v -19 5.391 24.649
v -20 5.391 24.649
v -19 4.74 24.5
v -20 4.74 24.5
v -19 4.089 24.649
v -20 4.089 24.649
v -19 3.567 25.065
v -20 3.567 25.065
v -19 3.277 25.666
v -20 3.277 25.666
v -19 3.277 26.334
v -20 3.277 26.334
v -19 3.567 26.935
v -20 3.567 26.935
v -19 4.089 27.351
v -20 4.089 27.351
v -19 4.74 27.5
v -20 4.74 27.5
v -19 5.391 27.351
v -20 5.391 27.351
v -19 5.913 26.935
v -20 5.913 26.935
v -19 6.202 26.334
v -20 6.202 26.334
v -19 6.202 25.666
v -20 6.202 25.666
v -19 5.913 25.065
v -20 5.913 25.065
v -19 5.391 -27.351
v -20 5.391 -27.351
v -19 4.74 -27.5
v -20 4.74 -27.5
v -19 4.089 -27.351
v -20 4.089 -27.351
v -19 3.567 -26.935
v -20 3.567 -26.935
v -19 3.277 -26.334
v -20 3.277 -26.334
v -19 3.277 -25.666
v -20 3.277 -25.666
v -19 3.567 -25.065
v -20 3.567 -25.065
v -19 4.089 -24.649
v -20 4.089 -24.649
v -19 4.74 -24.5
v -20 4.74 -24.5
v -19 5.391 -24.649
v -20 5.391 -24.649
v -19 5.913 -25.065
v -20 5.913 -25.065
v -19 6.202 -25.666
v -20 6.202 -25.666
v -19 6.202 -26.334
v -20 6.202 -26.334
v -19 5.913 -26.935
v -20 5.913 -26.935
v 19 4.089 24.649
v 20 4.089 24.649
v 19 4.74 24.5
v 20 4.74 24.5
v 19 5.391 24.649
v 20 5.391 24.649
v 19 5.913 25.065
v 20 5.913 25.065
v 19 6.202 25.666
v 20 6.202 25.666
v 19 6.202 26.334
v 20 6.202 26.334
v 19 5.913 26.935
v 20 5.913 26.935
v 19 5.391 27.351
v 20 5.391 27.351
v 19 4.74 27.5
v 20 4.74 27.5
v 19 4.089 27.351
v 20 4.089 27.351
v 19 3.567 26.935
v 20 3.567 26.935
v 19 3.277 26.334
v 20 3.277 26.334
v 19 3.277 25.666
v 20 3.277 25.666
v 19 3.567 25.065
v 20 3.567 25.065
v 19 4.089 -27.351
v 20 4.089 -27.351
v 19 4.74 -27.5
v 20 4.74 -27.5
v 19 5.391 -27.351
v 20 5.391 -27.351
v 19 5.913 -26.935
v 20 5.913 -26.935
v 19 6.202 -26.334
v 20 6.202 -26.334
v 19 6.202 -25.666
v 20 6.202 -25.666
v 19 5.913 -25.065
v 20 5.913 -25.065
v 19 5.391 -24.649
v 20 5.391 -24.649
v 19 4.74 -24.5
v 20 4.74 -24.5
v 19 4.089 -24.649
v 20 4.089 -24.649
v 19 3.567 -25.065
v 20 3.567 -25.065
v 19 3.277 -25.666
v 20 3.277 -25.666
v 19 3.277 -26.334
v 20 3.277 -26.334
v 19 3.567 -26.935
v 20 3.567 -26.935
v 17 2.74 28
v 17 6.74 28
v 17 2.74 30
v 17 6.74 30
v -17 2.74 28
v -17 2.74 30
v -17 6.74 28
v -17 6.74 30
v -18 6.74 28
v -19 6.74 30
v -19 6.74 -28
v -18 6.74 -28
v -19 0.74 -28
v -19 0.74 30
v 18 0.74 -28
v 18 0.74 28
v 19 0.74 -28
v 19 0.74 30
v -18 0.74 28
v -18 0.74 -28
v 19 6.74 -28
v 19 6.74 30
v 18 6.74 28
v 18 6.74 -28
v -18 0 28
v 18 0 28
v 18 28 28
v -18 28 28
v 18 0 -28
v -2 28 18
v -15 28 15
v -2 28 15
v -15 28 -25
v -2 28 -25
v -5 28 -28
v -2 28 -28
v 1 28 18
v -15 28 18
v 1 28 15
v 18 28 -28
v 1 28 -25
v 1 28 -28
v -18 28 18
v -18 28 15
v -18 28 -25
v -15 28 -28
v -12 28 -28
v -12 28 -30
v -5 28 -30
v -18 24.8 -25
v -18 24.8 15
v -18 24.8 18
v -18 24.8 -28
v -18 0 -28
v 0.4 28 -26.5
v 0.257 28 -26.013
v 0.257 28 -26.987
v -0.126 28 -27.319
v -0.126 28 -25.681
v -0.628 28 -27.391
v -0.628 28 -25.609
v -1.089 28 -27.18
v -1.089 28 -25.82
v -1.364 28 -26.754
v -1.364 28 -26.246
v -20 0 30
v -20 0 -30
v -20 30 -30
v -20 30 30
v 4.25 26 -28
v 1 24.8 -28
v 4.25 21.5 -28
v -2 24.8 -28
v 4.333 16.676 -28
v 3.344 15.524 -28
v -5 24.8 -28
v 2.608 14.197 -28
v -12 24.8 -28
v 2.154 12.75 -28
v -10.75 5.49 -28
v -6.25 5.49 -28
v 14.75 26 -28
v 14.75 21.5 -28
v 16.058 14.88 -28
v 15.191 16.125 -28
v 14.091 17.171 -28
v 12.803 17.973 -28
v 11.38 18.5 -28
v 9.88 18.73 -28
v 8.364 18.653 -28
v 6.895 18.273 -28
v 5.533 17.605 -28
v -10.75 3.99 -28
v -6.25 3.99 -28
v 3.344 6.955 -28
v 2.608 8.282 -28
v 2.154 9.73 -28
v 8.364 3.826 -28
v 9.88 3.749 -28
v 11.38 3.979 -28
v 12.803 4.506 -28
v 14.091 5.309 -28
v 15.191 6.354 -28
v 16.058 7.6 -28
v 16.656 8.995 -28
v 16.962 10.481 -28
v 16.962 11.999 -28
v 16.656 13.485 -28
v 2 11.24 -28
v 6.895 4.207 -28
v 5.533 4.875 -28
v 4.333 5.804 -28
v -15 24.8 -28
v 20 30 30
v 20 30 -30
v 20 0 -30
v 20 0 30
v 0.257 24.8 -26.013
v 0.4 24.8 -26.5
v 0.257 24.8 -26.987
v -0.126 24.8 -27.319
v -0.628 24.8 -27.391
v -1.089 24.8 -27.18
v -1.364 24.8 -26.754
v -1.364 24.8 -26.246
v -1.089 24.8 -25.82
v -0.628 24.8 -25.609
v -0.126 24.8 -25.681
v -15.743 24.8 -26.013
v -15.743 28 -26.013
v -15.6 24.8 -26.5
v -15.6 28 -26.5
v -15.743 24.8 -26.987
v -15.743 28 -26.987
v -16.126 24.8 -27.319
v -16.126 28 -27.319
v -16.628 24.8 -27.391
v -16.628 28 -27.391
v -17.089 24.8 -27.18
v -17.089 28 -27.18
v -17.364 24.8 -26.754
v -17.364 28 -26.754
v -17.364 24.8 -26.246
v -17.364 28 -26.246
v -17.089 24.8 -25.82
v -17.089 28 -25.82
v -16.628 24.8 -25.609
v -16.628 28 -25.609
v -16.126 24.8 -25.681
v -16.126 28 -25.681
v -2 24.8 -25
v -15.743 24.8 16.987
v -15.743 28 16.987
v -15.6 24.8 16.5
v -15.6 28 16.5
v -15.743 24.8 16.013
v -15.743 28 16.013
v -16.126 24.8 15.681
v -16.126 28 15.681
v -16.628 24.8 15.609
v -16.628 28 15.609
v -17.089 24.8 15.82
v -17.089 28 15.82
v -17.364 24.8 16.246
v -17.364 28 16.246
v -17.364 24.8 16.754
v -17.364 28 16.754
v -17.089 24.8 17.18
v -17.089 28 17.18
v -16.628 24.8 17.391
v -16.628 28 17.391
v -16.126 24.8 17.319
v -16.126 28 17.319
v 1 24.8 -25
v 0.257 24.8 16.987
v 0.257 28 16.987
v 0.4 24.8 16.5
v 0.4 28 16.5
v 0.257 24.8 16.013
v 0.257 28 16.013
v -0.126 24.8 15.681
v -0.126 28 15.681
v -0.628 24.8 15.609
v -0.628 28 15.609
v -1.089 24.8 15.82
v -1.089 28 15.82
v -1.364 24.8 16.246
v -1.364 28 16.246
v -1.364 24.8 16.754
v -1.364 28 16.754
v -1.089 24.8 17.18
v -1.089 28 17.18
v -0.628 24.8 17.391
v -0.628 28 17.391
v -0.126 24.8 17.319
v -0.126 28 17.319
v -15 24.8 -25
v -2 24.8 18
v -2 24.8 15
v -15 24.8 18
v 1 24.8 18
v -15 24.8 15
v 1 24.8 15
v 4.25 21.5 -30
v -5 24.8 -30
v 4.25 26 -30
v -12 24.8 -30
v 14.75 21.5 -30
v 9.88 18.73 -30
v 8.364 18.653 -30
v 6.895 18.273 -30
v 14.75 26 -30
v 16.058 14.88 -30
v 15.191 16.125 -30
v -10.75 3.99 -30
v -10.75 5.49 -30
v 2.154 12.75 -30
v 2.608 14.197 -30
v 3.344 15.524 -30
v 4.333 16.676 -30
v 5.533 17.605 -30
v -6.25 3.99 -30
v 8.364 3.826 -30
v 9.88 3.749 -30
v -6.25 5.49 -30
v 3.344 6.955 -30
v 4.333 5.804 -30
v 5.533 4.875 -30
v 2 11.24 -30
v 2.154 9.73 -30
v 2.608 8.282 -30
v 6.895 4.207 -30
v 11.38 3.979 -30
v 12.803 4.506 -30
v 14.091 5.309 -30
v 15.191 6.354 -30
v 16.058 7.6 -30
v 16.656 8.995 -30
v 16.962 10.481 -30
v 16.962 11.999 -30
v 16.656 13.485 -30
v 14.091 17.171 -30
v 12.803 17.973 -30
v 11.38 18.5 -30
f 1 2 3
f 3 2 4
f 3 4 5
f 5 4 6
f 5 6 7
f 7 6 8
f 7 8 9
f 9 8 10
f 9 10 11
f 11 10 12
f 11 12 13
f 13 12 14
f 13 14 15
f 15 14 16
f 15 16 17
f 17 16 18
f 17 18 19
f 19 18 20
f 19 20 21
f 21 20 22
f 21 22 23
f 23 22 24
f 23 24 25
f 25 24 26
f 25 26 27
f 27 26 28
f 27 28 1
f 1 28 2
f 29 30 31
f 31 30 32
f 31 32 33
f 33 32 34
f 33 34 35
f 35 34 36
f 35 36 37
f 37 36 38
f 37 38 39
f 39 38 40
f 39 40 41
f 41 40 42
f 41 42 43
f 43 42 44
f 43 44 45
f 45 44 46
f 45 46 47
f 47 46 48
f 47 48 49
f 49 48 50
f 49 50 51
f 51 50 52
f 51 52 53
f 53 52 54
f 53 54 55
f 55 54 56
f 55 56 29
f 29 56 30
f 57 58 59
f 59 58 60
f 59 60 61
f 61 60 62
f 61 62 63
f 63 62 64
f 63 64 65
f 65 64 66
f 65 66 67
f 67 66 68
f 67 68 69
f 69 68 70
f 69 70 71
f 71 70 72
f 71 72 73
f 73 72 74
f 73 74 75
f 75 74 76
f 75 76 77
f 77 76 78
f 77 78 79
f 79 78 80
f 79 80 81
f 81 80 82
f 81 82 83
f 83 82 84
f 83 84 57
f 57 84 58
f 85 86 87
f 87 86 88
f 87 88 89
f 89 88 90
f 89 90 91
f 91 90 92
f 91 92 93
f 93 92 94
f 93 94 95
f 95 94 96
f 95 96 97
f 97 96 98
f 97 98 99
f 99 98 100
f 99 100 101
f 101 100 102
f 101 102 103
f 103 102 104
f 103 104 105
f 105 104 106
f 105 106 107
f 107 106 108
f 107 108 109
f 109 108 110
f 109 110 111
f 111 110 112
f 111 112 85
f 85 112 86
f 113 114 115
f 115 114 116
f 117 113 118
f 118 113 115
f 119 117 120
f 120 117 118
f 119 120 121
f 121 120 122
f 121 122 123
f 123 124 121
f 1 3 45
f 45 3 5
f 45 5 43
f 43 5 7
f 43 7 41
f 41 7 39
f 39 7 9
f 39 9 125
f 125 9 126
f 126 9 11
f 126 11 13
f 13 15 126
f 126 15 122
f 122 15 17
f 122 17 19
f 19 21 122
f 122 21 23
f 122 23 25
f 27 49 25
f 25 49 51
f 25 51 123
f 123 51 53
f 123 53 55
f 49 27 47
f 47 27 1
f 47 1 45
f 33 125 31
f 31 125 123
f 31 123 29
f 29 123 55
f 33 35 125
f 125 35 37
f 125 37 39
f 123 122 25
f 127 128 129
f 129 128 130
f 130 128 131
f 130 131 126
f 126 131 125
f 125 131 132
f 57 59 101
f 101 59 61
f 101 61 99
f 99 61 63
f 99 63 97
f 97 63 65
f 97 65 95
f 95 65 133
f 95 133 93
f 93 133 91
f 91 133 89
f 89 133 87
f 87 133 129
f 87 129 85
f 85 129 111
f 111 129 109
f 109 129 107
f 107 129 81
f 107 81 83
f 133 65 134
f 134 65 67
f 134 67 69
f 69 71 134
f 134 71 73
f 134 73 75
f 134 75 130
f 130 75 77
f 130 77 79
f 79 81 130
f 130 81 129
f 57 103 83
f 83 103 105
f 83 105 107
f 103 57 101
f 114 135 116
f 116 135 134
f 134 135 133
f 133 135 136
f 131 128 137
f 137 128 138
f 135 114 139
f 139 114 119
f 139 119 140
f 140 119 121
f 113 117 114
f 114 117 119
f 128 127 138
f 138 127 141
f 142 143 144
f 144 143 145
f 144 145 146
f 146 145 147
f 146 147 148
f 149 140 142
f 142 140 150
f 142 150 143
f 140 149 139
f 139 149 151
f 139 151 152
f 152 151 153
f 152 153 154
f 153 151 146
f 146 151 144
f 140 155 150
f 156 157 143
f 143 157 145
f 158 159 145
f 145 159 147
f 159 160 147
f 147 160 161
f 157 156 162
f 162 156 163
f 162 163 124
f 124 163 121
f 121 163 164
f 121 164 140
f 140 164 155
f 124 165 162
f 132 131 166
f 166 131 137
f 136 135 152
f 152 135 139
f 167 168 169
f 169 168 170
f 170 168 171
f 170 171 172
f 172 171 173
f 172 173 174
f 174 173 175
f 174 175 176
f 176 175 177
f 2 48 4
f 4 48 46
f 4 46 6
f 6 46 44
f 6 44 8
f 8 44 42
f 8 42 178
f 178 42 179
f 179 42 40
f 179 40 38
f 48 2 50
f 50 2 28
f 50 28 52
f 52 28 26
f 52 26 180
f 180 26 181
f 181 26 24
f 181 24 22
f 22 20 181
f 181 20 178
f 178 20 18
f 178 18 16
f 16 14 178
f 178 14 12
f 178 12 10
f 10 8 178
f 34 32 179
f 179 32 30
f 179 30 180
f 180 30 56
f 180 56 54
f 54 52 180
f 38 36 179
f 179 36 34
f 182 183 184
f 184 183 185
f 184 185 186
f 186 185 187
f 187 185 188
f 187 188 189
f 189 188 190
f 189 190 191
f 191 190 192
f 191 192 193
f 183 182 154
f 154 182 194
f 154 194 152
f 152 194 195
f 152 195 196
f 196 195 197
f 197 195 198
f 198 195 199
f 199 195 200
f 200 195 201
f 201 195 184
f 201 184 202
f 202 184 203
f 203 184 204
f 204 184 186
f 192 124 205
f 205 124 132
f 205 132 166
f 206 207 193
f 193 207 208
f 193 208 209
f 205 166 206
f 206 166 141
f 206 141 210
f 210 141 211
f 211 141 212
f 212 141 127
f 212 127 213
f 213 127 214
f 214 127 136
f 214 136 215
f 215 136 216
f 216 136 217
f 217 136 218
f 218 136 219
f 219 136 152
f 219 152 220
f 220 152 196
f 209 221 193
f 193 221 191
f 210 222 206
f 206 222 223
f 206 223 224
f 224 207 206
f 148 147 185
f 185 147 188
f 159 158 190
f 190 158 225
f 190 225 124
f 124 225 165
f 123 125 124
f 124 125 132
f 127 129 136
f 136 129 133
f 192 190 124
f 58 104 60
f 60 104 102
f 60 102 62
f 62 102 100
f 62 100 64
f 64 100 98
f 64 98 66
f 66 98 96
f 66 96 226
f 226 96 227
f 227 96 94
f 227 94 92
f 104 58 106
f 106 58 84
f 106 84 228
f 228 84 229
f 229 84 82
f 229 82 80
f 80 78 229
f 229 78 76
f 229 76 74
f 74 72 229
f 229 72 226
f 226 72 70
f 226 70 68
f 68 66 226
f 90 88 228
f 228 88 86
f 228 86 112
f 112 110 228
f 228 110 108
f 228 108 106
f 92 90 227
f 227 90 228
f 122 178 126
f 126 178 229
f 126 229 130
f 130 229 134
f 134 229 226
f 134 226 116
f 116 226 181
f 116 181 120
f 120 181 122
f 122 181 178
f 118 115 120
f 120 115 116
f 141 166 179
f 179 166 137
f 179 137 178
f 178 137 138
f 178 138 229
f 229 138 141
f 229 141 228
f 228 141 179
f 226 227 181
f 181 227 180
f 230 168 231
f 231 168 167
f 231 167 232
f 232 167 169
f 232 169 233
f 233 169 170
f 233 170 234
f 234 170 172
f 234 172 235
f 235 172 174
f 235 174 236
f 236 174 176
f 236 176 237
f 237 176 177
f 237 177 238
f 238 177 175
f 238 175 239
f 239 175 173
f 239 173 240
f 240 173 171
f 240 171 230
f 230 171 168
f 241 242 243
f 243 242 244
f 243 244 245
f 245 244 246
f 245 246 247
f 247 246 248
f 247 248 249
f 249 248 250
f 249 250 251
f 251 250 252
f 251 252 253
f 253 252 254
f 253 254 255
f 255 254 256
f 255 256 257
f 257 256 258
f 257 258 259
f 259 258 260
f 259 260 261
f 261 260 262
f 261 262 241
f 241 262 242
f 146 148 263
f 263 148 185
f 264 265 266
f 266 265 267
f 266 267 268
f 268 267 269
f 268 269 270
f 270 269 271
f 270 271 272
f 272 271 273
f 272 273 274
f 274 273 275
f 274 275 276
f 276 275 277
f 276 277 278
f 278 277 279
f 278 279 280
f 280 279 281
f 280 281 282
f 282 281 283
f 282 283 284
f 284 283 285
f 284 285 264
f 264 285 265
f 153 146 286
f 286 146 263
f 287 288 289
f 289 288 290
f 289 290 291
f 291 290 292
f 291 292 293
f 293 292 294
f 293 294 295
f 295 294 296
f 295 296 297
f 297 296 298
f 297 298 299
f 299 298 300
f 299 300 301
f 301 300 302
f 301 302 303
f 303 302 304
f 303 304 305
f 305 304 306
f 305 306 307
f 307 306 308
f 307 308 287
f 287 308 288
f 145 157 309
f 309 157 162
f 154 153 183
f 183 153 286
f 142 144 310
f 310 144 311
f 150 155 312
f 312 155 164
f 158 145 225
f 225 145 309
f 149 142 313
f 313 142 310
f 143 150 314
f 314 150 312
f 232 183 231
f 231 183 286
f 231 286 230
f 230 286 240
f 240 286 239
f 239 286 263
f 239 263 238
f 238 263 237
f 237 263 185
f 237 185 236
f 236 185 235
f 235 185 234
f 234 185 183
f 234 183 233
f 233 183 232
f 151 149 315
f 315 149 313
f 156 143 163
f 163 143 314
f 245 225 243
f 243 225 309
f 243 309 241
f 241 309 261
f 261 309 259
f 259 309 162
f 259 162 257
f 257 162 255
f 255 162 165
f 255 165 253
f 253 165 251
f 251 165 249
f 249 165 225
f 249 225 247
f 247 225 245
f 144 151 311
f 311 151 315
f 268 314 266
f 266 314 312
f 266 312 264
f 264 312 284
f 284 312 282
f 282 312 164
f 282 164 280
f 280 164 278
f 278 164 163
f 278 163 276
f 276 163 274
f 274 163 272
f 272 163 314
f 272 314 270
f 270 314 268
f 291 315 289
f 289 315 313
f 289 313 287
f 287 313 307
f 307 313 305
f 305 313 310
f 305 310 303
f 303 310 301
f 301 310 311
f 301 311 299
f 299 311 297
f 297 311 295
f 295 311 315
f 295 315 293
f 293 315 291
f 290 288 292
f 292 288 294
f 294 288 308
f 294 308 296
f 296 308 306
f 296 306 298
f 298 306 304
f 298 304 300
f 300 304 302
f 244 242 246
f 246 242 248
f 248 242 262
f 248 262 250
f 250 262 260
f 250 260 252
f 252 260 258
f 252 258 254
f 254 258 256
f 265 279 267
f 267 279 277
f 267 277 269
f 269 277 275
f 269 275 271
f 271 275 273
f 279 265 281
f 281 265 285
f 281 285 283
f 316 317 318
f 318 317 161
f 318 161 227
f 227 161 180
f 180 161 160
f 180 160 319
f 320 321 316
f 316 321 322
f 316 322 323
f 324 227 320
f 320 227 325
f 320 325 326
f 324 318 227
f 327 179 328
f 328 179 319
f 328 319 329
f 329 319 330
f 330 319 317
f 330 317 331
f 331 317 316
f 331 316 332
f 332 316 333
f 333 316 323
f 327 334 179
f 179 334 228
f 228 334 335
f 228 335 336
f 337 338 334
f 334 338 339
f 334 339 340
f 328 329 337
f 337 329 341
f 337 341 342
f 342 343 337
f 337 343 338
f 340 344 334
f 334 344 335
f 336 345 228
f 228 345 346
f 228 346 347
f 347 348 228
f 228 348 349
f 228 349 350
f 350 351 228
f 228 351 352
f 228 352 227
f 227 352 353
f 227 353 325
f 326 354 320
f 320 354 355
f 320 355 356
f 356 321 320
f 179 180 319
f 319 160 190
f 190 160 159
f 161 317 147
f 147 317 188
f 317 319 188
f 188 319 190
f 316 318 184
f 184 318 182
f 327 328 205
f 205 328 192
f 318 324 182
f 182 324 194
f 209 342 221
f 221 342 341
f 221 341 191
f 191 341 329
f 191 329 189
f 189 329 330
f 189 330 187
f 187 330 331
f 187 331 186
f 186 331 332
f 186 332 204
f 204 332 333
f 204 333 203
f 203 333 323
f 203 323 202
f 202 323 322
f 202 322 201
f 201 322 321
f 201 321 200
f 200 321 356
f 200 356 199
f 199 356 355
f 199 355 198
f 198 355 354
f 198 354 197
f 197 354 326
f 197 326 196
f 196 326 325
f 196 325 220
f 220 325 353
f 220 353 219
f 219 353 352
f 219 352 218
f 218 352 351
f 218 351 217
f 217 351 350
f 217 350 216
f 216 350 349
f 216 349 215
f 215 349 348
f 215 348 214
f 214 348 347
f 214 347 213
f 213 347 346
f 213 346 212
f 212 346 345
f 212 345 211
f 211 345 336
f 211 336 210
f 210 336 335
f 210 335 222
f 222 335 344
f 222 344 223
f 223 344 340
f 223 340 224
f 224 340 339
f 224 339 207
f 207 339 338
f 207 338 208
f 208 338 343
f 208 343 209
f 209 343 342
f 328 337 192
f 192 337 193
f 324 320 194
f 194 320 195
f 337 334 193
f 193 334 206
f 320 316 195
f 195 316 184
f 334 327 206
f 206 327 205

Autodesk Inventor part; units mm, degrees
ref_plane "YZ Plane" through (0, 0, 0) normal (1, 0, 0) x (0, 1, 0)
ref_plane "XZ Plane" through (0, 0, 0) normal (0, 1, 0) x (-1, 0, 0)
ref_plane "XY Plane" through (0, 0, 0) normal (0, 0, 1) x (1, 0, 0)
sketch "草图2" plane through (0, 0, 0) normal (0, 1, 0) x (-1, 0, 0)
  line L0 (-20, 30) -> (20, 30)
  line L1 (20, 30) -> (20, -30)
  line L2 (20, -30) -> (-20, -30)
  line L3 (-20, -30) -> (-20, 30)
  line L4 (-20, 30) -> (20, -30) construction
  line L5 (20, 30) -> (-20, -30) construction
  point P0 (0, 0)
  dimension "d15" = 40
  dimension "d16" = 60
extrude "拉伸2" add sketch "草图2" along normal blind 30
shell "抽壳1" thickness 2 removed faces 1 at (-6.6667, 0, -10)
sketch "草图3" plane through (-20, 0, 30) normal (0, 0, 1) x (1, 0, 0)
  line L0 (40, 0) -> (0, 0) construction
  line L1 (40, 0) -> (40, 30) construction
  line L2 (0, 30) -> (40, 30) construction
  line L3 (0, 0) -> (0, 30) construction
  line L4 (0, 0) -> (0, 30) construction
  line L5 (40, 0) -> (40, 30) construction
  line L6 (40, 0) -> (0, 0) construction
  line L7 (3, 6.7398) -> (1, 6.7398)
  line L8 (1, 6.7398) -> (1, 0.7398)
  line L9 (0, 1.7398) -> (40, 1.7398) construction
  line L10 (3, 6.7398) -> (3, 2.7398)
  line L11 (40, 30) -> (0, 30) construction
  line L12 (20, 30) -> (20, 0) construction
  line L13 (38, 0) -> (2, 0) projected
  line L14 (3, 2.7398) -> (20, 2.7398)
  line L15 (1, 0.7398) -> (20, 0.7398)
  line L16 (37, 6.7398) -> (39, 6.7398)
  line L17 (39, 6.7398) -> (39, 0.7398)
  line L18 (37, 6.7398) -> (37, 2.7398)
  line L19 (37, 2.7398) -> (20, 2.7398)
  line L20 (39, 0.7398) -> (20, 0.7398)
  point P0 (20, 0)
  dimension "d29" = 2
  dimension "d44" = 5
  dimension "d45" = 2
  dimension "d46" = 6
  dimension "d47" = 40
extrude "拉伸3" cut sketch "草图3" against normal blind 58
sketch "草图5" plane through (20, 0, 30) normal (1, 0, 0) x (0, 0, -1)
  line L0 (0, 6.7398) -> (58, 6.7398) construction
  line L1 (0, 0.7398) -> (58, 0.7398) construction
  line L2 (0, 6.7398) -> (2, 6.7398) construction
  line L3 (0, 2.7398) -> (2, 2.7398) construction
  line L4 (0, 2.7398) -> (58, 2.7398) construction
  line L5 (58, 6.7398) -> (2, 6.7398) construction
  line L6 (58, 6.7398) -> (58, 0.7398) construction
  line L7 (0, 0) -> (0, 30) construction
  line L8 (0, 4.7398) -> (58, 4.7398) construction
  circle A0 centre (4, 4.7398) radius 1.5
  line L9 (2, 0.7398) -> (2, 6.7398) construction
  circle A1 centre (56, 4.7398) radius 1.5
  point P0 (30, 0)
  dimension "d48" = 4
  dimension "d49" = 3
  dimension "d51" = 2
  dimension "d52" = 2
  dimension "d53" = 3
  dimension "d54" = 2
extrude "拉伸4" cut sketch "草图5" against normal blind 2
mirror "镜像1" about plane through (0, 0, 0) normal (1, 0, 0) of "拉伸4"
sketch "草图7" plane through (-18, 28, 28) normal (0, -1, 0) x (1, 0, 0)
  line L0 (0, 0) -> (36, 0) construction
  line L1 (0, -56) -> (0, 0) construction
  line L2 (36, -56) -> (0, -56) construction
  line L3 (36, 0) -> (36, -56) construction
  line L4 (0.5, -55.5) -> (18.5, -55.5) construction
  line L5 (18.5, -55.5) -> (18.5, -10.5) construction
  line L6 (18.5, -10.5) -> (0.5, -10.5) construction
  line L7 (0.5, -10.5) -> (0.5, -55.5) construction
  circle A0 centre (1.5, -54.5) radius 0.9
  line L8 (3, -56) -> (0, -56)
  line L9 (0, -56) -> (0, -53)
  line L10 (0, -53) -> (3, -53)
  line L11 (3, -53) -> (3, -56)
  line L12 (3, -56) -> (0, -53) construction
  line L13 (0, -56) -> (3, -53) construction
  line L14 (0.5, -55.5) -> (18.5, -10.5) construction
  line L15 (0.5, -10.5) -> (18.5, -55.5) construction
  line L16 (3, -13) -> (0, -13)
  line L17 (0, -13) -> (0, -10)
  line L18 (0, -10) -> (3, -10)
  line L19 (3, -10) -> (3, -13)
  circle A1 centre (1.5, -11.5) radius 0.9
  line L20 (19, -56) -> (16, -56)
  line L21 (16, -56) -> (16, -53)
  line L22 (16, -53) -> (19, -53)
  line L23 (19, -53) -> (19, -56)
  circle A2 centre (17.5, -54.5) radius 0.9
  line L24 (19, -13) -> (16, -13)
  line L25 (16, -13) -> (16, -10)
  line L26 (16, -10) -> (19, -10)
  line L27 (19, -10) -> (19, -13)
  circle A3 centre (17.5, -11.5) radius 0.9
  point P0 (9.5, -33)
  dimension "d70" = 18
  dimension "d71" = 45
  dimension "d79" = 1.8
  dimension "d80" = 1
  dimension "d81" = 1
  dimension "d82" = 3
  dimension "d83" = 3
  dimension "d91" = 43
  dimension "d94" = 16
  dimension "d97" = 1
  dimension "d98" = 1
sketch "草图9" plane through (20, 0, -30) normal (0, 0, -1) x (-1, 0, 0)
  line L0 (37.5, 28) -> (19.5, 28) construction
  line L1 (32, 24.8) -> (25, 24.8)
  line L2 (25, 24.8) -> (25, 28)
  line L3 (25, 28) -> (32, 28)
  line L4 (32, 28) -> (32, 24.8)
  line L5 (32, 24.8) -> (25, 28) construction
  line L6 (25, 24.8) -> (32, 28) construction
  point P0 (20, 0)
  point P1 (28.5, 26.4)
  dimension "d99" = 18
  dimension "d100" = 7
  dimension "d101" = 3.2
  dimension "d102" = 1.6
  dimension "d103" = 9
extrude "拉伸5" add sketch "草图7" along normal blind 3.2
extrude "拉伸6" cut sketch "草图9" against normal blind 2
sketch "草图10" plane through (20, 0, -30) normal (0, 0, -1) x (-1, 0, 0)
  line L0 (32, 28) -> (32, 24.8) construction
  line L1 (32, 24.8) -> (25, 24.8) construction
  line L2 (25, 24.8) -> (25, 28) construction
  line L3 (25, 28) -> (32, 28) construction
  line L4 (40, 0) -> (0, 0) construction
  line L5 (40, 0) -> (40, 30) construction
  line L6 (0, 30) -> (40, 30) construction
  line L7 (0, 0) -> (0, 30) construction
  line L8 (25, 28) -> (25, 24.8) construction
  line L9 (25, 24.8) -> (32, 24.8) construction
  line L10 (32, 24.8) -> (32, 28) construction
  line L11 (32, 28) -> (35, 28) construction
  line L12 (35, 28) -> (35, 24.8) construction
  line L13 (35, 24.8) -> (38, 24.8) construction
  line L14 (38, 6.7398) -> (38, 24.8) construction
  line L15 (39, 6.7398) -> (38, 6.7398) construction
  line L16 (39, 0.7398) -> (39, 6.7398) construction
  line L17 (38, 0.7398) -> (39, 0.7398) construction
  line L18 (38, 0) -> (38, 0.7398) construction
  line L19 (2, 0) -> (38, 0) construction
  line L20 (2, 0) -> (2, 0.7398) construction
  line L21 (1, 0.7398) -> (2, 0.7398) construction
  line L22 (1, 6.7398) -> (1, 0.7398) construction
  line L23 (2, 6.7398) -> (1, 6.7398) construction
  line L24 (2, 6.7398) -> (2, 28) construction
  line L25 (2, 28) -> (19, 28) construction
  line L26 (19, 28) -> (19, 24.8) construction
  line L27 (19, 24.8) -> (22, 24.8) construction
  line L28 (22, 24.8) -> (22, 28) construction
  line L29 (22, 28) -> (25, 28) construction
  circle A0 centre (10.5, 11.2398) radius 7.5
  line L30 (37, 2.7398) -> (3, 2.7398) construction
  line L31 (38, 28) -> (2, 28) construction
  line L32 (10.5, 28) -> (10.5, 0) construction
  line L33 (2, 0) -> (38, 0) construction
  line L34 (5.25, 21.5) -> (15.75, 21.5)
  line L35 (15.75, 21.5) -> (15.75, 26)
  line L36 (15.75, 26) -> (5.25, 26)
  line L37 (5.25, 26) -> (5.25, 21.5)
  line L38 (5.25, 21.5) -> (15.75, 26) construction
  line L39 (15.75, 21.5) -> (5.25, 26) construction
  line L40 (28.5, 24.8) -> (28.5, 2.7398) construction
  line L41 (26.25, 3.9898) -> (30.75, 3.9898)
  line L42 (30.75, 3.9898) -> (30.75, 5.4898)
  line L43 (30.75, 5.4898) -> (26.25, 5.4898)
  line L44 (26.25, 5.4898) -> (26.25, 3.9898)
  line L45 (26.25, 3.9898) -> (30.75, 5.4898) construction
  line L46 (30.75, 3.9898) -> (26.25, 5.4898) construction
  point P0 (20, 0)
  point P1 (10.5, 23.75)
  point P2 (28.5, 4.7398)
  dimension "d108" = 15
  dimension "d111" = 8.5
  dimension "d112" = 17
  dimension "d113" = 10.5
  dimension "d114" = 4.5
  dimension "d115" = 2
  dimension "d116" = 4.5
  dimension "d117" = 1.5
  dimension "d118" = 2
extrude "拉伸7" cut sketch "草图10" against normal blind 2
equation "\"d102\" = 0.5 * d101"
equation "\"d103\" = 0.5 * d99"
properties part number "Case"
